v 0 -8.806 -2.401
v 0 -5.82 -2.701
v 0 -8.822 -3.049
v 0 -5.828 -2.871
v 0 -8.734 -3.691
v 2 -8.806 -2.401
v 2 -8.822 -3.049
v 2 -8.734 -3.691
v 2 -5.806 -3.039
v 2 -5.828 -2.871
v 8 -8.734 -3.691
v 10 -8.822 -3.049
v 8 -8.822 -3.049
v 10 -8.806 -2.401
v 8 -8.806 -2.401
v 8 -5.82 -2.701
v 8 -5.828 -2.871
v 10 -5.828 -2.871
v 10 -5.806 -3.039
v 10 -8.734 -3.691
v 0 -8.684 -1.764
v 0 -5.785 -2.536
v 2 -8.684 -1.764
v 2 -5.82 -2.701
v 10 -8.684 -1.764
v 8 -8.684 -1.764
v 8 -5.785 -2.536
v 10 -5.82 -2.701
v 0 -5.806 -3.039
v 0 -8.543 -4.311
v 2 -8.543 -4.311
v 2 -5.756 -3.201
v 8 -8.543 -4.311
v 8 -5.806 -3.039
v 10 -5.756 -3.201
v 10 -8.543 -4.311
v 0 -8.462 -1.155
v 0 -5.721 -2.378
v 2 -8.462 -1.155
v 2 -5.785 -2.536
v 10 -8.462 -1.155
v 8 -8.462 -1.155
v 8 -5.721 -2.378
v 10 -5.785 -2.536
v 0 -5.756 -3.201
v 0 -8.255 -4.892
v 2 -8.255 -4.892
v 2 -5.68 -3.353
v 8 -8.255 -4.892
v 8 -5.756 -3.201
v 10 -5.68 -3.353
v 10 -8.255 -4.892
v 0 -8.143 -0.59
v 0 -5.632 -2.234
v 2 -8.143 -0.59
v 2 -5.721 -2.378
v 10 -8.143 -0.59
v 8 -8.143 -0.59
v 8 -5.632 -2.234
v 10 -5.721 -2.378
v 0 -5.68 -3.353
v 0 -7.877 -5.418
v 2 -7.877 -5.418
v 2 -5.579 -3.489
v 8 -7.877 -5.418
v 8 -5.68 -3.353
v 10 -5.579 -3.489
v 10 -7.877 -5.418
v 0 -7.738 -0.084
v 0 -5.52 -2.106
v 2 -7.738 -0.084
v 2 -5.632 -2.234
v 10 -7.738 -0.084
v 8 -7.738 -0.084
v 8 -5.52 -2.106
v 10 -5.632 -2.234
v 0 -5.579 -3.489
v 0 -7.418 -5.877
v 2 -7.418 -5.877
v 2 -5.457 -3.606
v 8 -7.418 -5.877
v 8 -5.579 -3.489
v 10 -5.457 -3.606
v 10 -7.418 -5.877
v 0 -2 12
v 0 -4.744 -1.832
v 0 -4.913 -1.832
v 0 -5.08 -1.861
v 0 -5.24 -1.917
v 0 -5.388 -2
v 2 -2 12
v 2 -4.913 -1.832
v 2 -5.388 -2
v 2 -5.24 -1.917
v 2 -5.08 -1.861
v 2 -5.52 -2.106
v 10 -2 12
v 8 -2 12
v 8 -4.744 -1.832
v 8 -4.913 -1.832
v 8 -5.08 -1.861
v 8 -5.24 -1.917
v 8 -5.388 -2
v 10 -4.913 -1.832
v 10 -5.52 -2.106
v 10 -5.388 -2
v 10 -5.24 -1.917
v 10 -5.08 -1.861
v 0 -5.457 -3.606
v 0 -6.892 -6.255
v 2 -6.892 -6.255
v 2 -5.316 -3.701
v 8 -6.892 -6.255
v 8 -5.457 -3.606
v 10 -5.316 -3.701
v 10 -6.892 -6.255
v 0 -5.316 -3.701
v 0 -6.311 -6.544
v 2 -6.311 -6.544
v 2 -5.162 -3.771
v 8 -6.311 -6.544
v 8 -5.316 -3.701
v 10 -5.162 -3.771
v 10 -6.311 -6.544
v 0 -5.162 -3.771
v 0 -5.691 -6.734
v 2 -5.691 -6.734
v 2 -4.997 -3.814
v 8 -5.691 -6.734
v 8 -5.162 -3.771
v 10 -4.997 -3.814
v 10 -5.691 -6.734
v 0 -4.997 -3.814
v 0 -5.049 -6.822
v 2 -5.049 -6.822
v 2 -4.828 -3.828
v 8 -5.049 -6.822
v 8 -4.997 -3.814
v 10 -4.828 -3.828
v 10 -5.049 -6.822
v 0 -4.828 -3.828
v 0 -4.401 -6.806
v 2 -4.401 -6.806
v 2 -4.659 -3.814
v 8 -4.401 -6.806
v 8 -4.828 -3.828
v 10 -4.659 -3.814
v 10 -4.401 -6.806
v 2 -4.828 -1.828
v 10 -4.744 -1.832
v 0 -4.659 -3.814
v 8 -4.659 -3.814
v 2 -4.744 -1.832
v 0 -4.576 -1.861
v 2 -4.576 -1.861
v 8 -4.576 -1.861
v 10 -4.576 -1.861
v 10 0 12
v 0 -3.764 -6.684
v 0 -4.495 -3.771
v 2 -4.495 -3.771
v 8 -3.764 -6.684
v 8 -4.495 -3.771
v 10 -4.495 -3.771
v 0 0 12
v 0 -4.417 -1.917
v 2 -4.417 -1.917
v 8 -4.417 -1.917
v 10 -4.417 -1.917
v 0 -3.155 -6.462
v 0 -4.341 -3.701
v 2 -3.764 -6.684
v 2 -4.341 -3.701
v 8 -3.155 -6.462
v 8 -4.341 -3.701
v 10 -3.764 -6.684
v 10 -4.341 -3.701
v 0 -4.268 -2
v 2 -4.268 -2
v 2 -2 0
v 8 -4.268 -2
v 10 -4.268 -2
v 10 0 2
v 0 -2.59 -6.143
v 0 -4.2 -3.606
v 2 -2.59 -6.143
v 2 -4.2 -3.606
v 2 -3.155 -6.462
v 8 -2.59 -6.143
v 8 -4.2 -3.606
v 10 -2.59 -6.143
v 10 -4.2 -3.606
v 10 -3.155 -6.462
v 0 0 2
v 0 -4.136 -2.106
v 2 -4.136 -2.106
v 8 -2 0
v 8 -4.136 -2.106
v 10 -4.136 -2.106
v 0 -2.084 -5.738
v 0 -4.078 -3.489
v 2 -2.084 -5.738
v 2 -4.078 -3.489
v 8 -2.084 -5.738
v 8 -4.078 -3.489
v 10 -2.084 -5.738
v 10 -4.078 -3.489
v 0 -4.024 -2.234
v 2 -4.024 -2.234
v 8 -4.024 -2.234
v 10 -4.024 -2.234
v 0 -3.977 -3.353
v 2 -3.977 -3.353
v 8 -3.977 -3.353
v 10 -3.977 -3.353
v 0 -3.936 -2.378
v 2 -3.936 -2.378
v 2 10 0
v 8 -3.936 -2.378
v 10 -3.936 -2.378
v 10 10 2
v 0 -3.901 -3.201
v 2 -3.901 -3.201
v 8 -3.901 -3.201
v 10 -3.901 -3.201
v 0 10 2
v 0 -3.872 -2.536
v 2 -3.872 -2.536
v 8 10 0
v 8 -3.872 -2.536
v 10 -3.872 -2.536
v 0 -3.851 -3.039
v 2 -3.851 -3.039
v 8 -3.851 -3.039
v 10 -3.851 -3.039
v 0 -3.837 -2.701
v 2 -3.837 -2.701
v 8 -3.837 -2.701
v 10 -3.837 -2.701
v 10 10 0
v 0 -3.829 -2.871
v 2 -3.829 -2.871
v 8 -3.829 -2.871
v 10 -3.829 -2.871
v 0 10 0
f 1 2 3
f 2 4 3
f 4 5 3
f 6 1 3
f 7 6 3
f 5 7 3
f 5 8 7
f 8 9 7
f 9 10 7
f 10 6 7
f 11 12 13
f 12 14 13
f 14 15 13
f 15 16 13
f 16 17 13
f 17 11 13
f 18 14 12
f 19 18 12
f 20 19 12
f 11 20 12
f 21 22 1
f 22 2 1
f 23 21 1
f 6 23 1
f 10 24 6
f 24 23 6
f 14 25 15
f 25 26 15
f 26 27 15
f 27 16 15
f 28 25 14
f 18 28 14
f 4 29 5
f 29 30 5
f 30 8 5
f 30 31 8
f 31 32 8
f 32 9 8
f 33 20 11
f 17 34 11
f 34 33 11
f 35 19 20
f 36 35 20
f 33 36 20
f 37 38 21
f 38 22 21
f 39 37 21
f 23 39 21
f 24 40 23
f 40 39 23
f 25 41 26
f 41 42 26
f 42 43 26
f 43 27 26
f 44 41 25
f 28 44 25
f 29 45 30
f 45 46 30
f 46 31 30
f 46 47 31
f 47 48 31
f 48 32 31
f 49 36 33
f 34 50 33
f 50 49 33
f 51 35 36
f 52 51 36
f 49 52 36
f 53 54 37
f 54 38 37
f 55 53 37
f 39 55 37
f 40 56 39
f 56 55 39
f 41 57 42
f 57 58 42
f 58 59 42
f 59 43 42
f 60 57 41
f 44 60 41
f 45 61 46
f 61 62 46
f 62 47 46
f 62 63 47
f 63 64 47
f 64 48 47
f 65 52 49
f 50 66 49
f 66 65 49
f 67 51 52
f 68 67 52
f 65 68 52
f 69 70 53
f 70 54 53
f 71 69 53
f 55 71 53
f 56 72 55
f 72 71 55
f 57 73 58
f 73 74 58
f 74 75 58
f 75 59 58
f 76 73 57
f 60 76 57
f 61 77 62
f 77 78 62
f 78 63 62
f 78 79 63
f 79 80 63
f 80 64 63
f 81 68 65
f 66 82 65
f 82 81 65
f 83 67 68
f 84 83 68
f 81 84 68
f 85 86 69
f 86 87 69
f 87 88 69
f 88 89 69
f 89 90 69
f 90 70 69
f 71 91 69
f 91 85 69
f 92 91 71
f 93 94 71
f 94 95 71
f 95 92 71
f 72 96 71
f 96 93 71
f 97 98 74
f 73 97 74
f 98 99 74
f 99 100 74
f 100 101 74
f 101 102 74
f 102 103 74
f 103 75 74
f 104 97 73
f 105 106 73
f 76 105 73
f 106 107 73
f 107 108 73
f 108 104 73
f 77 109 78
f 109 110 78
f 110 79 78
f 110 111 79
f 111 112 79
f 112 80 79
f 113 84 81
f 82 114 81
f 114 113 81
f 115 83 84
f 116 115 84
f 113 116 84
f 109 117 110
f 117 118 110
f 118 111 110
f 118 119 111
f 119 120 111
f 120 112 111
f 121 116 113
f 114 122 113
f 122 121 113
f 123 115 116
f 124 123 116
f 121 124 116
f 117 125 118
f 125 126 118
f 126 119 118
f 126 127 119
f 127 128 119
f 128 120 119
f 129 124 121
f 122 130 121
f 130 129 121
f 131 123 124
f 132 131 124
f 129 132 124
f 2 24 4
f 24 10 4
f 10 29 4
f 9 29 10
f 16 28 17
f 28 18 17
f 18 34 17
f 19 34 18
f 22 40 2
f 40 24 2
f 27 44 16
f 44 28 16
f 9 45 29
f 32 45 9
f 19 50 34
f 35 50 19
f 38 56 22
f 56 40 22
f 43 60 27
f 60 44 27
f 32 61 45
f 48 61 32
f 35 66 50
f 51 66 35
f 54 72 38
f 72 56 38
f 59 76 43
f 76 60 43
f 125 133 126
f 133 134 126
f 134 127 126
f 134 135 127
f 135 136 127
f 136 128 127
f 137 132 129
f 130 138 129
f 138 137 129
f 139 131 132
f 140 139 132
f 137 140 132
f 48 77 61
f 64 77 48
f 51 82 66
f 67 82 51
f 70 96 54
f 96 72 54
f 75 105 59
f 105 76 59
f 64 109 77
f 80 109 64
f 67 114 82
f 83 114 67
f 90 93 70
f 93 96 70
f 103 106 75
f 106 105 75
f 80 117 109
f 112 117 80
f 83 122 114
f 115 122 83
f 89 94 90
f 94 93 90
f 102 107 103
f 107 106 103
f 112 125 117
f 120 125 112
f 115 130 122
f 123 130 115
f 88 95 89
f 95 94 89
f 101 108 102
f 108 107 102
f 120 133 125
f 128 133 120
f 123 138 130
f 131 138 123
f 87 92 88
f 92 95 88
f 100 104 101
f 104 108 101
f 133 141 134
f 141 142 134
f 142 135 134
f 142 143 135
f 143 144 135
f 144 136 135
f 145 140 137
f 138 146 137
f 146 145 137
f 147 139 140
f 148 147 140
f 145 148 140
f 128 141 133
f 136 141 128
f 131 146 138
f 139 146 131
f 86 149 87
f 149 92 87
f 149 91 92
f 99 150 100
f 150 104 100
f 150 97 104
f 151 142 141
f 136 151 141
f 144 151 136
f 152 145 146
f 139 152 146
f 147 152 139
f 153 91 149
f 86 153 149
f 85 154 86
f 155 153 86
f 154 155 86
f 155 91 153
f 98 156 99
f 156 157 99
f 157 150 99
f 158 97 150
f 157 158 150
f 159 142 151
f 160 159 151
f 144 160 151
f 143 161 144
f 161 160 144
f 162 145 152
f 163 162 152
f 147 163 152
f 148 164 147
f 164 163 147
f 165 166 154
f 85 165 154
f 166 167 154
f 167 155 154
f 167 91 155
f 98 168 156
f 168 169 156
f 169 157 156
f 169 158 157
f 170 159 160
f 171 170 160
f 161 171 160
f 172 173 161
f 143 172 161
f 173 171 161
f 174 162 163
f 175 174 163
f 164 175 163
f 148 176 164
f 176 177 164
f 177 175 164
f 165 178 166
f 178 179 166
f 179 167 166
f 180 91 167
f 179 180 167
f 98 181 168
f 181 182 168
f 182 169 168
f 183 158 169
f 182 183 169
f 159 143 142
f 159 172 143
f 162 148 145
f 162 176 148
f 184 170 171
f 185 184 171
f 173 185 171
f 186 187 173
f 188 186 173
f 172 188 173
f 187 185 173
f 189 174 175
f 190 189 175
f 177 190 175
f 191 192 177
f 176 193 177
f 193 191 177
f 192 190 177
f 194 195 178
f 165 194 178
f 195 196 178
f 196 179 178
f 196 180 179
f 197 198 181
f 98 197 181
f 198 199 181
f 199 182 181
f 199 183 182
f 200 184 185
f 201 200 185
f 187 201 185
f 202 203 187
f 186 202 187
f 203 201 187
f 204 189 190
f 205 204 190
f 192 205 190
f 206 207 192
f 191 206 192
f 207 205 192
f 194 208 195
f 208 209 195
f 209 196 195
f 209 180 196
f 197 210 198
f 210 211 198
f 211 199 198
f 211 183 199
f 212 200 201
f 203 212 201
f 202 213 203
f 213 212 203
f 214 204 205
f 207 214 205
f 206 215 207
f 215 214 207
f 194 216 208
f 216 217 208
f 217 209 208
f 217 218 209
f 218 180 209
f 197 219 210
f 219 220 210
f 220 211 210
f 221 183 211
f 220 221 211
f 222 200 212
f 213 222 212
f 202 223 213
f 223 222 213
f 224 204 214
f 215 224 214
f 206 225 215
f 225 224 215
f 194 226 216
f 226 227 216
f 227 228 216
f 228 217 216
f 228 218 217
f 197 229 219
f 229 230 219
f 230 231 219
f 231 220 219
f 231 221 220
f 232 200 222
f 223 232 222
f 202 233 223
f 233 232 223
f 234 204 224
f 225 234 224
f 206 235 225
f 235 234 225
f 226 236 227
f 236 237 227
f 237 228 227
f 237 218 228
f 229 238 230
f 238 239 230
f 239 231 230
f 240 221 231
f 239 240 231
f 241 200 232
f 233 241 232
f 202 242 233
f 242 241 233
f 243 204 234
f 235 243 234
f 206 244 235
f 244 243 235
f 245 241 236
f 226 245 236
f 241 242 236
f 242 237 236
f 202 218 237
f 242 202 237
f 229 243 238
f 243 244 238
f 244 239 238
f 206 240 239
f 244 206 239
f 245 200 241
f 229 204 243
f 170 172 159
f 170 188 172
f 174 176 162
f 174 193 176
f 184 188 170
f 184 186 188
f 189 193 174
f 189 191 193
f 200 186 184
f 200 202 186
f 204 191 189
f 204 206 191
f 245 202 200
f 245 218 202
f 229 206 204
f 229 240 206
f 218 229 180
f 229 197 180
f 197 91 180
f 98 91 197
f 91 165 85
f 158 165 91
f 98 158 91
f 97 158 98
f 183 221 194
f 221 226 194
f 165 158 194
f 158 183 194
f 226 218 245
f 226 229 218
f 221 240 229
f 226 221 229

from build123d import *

# Parameters (mm, degrees)
SKETCH_1_W          = 10
SKETCH_1_H          = 10
EXTRUDE_1_DEPTH     = 2
SKETCH_2_W          = 10
SKETCH_2_H          = 12
EXTRUDE_2_DEPTH     = 2
EXTRUDE_4_DEPTH     = 2
EXTRUDE_START       = -2
EXTRUDE_5_DEPTH     = 2
SKETCH_5_R          = 1
CUT_EXTRUDE_1_DEPTH = 10


with BuildPart() as part:
    # 草图1 → 凸台-拉伸1 (new body)
    with BuildSketch(Plane.XY):
        with Locations((5, 5)):
            Rectangle(SKETCH_1_W, SKETCH_1_H)
    extrude(amount=EXTRUDE_1_DEPTH)

    # 草图2 → 凸台-拉伸2 (add)
    with BuildSketch(Plane.XZ):
        with Locations((5, 6)):
            Rectangle(SKETCH_2_W, SKETCH_2_H)
    extrude(amount=EXTRUDE_2_DEPTH)

    # 草图3 → 凸台-拉伸4 (add)
    with BuildSketch(Plane(origin=(10, 0, 0), x_dir=(0, 0, -1), z_dir=(1, 0, 0))):
        with BuildLine():
            Line((0, -2), (-12, -2))
            Line((-12, -2), (0.083847107, -7.738286318))
            ThreePointArc((0.083847107, -7.738286318), (5.656854249, -7.656854249), (5.738286318, -2.083847107))
            Line((5.738286318, -2.083847107), (0, 10))
            Line((0, 10), (0, -2))
        make_face()
    extrude(amount=-EXTRUDE_4_DEPTH)

    # 草图4 → 凸台-拉伸5 (add)
    with BuildSketch(Plane.ZY.offset(EXTRUDE_START)):
        with BuildLine():
            Line((0, -2), (0, 10))
            Line((0, 10), (-5.738286318, -2.083847107))
            ThreePointArc((-5.738286318, -2.083847107), (-5.656854249, -7.656854249), (-0.083847107, -7.738286318))
            Line((-0.083847107, -7.738286318), (12, -2))
            Line((12, -2), (0, -2))
        make_face()
    extrude(amount=EXTRUDE_5_DEPTH)

    # 草图5 → 切除-拉伸1 (cut)
    with BuildSketch(Plane(origin=(10, 0, 0), x_dir=(0, 0, -1), z_dir=(1, 0, 0))):
        with Locations((2.828427125, -4.828427125)):
            Circle(SKETCH_5_R)
    extrude(amount=-CUT_EXTRUDE_1_DEPTH, mode=Mode.SUBTRACT)


solid = part.part
